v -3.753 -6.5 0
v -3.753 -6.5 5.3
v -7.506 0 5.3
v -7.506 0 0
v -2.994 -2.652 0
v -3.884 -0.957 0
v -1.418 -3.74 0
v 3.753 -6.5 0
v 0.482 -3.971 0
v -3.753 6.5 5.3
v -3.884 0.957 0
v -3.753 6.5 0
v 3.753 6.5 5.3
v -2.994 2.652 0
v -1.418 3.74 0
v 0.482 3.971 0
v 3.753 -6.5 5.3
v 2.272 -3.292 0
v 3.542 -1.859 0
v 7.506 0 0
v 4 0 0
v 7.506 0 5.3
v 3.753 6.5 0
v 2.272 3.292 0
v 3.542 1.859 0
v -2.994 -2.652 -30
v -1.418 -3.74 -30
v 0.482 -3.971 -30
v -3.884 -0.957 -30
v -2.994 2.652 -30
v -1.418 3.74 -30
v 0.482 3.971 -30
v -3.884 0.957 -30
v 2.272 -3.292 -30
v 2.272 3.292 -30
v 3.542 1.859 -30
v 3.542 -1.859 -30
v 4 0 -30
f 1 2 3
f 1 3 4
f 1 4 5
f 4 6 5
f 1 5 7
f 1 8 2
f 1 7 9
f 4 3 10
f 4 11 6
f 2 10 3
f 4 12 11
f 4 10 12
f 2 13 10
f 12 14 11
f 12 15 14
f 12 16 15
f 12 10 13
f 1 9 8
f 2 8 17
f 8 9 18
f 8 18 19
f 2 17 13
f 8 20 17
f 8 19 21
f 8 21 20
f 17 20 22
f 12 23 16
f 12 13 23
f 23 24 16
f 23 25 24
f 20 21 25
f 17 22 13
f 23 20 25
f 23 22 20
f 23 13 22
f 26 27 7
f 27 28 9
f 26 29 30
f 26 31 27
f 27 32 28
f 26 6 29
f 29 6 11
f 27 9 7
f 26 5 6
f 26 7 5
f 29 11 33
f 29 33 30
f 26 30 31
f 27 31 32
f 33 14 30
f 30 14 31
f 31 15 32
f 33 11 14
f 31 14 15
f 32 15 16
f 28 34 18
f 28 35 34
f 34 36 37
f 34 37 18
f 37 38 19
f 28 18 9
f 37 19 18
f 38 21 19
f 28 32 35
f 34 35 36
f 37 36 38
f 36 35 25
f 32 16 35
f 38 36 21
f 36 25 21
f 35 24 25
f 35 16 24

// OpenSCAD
// M8 Hex Bolt

// Dimensions for the M8 hex bolt
// Standard dimensions for M8 bolts (ISO 4017/DIN 933 or similar)
// Head across-flats (s): 13 mm
// Head height (k): 5.3 mm
// Shank diameter (nominal thread diameter, d): 8 mm
// Shank length (l): 30 mm

// --- Parameters ---
// Head dimensions
head_across_flats = 13;   // 対辺距離 (across-flats)
head_height = 5.3;        // 頭部の高さ

// Shank dimensions
shank_diameter = 8;       // シャンクの直径
shank_length = 30;        // シャンクの長さ

// --- Calculated values ---
// Radius of the circumcircle for the hexagonal head
// For a regular hexagon, the across-flats distance (s) is related to the circumcircle radius (R) by:
// s = 2 * R * cos(30 degrees)
// R = s / (2 * cos(30 degrees)) = s / sqrt(3)
head_radius_circumcircle = head_across_flats / sqrt(3);

// Shank radius
shank_radius = shank_diameter / 2;


// --- Bolt Assembly ---
union() {
    // 1. Hexagonal Head
    // Placed such that its bottom face is at z=0 and extends upwards (+Z direction).
    // $fn=6 specifies a hexagon (6 faces).
    // center=false makes the cylinder extend from z=0 to z=height.
    cylinder(
        h = head_height,
        r = head_radius_circumcircle,
        $fn = 6,
        center = false
    );

    // 2. Shank (Cylindrical part)
    // Placed such that it starts from z=0 and extends downwards (-Z direction).
    // The cylinder itself is defined from z=0 to z=shank_length (center=false).
    // It is then translated downwards by its full length to align its top face with z=0.
    translate([0, 0, -shank_length])
    cylinder(
        h = shank_length,
        r = shank_radius,
        center = false
    );
}
